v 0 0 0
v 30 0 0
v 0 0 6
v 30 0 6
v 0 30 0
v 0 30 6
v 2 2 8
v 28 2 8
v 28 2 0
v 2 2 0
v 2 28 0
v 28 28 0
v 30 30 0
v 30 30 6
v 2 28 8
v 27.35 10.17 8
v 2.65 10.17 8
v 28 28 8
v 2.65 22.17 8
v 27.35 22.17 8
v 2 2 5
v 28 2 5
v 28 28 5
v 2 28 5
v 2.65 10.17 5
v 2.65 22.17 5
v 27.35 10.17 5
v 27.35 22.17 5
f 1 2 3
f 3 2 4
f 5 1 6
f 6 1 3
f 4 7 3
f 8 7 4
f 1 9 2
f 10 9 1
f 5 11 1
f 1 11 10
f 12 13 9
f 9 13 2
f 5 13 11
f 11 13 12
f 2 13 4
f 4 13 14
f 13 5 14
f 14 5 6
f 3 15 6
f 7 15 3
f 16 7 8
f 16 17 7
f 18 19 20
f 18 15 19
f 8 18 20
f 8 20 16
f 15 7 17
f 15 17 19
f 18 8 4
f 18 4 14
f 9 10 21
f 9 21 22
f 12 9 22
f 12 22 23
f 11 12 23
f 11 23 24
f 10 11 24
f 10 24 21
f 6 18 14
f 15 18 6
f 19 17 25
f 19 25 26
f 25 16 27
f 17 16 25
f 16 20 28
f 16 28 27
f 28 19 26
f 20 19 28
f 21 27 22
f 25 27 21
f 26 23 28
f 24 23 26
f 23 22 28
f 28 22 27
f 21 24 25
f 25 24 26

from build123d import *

# Parameters (mm, degrees)
SKETCH_W        = 30
SKETCH_H        = 30
PAD_DEPTH       = 8
CHAMFER_SIZE    = 2
SKETCH001_W     = 26
SKETCH001_H     = 26
POCKET_DEPTH    = 5
SKETCH002_W     = 24.7
SKETCH002_H     = 12
POCKET001_DEPTH = 5


with BuildPart() as part:
    # Sketch → Pad (new body)
    with BuildSketch(Plane.XY):
        with Locations((15, 15)):
            Rectangle(SKETCH_W, SKETCH_H)
    extrude(amount=PAD_DEPTH)

    # Chamfer
    chamfer_edges = [part.edges().sort_by_distance(p)[0] for p in [
        (15, 0, 8),
        (0, 15, 8),
        (15, 30, 8),
        (30, 15, 8),
    ]]
    chamfer(chamfer_edges, length=CHAMFER_SIZE)

    # Sketch001 (on Face4 of Chamfer) → Pocket (cut)
    with BuildSketch(Plane(origin=(0, 0, 0), x_dir=(1, 0, 0), z_dir=(0, 0, -1))):
        with Locations((15, -15)):
            Rectangle(SKETCH001_W, SKETCH001_H)
    extrude(amount=-POCKET_DEPTH, mode=Mode.SUBTRACT)

    # Sketch002 (on Face8 of Pocket) → Pocket001 (cut)
    with BuildSketch(Plane.XY.offset(8)):
        with Locations((15, 16.17)):
            Rectangle(SKETCH002_W, SKETCH002_H)
    extrude(amount=-POCKET001_DEPTH, mode=Mode.SUBTRACT)


solid = part.part
